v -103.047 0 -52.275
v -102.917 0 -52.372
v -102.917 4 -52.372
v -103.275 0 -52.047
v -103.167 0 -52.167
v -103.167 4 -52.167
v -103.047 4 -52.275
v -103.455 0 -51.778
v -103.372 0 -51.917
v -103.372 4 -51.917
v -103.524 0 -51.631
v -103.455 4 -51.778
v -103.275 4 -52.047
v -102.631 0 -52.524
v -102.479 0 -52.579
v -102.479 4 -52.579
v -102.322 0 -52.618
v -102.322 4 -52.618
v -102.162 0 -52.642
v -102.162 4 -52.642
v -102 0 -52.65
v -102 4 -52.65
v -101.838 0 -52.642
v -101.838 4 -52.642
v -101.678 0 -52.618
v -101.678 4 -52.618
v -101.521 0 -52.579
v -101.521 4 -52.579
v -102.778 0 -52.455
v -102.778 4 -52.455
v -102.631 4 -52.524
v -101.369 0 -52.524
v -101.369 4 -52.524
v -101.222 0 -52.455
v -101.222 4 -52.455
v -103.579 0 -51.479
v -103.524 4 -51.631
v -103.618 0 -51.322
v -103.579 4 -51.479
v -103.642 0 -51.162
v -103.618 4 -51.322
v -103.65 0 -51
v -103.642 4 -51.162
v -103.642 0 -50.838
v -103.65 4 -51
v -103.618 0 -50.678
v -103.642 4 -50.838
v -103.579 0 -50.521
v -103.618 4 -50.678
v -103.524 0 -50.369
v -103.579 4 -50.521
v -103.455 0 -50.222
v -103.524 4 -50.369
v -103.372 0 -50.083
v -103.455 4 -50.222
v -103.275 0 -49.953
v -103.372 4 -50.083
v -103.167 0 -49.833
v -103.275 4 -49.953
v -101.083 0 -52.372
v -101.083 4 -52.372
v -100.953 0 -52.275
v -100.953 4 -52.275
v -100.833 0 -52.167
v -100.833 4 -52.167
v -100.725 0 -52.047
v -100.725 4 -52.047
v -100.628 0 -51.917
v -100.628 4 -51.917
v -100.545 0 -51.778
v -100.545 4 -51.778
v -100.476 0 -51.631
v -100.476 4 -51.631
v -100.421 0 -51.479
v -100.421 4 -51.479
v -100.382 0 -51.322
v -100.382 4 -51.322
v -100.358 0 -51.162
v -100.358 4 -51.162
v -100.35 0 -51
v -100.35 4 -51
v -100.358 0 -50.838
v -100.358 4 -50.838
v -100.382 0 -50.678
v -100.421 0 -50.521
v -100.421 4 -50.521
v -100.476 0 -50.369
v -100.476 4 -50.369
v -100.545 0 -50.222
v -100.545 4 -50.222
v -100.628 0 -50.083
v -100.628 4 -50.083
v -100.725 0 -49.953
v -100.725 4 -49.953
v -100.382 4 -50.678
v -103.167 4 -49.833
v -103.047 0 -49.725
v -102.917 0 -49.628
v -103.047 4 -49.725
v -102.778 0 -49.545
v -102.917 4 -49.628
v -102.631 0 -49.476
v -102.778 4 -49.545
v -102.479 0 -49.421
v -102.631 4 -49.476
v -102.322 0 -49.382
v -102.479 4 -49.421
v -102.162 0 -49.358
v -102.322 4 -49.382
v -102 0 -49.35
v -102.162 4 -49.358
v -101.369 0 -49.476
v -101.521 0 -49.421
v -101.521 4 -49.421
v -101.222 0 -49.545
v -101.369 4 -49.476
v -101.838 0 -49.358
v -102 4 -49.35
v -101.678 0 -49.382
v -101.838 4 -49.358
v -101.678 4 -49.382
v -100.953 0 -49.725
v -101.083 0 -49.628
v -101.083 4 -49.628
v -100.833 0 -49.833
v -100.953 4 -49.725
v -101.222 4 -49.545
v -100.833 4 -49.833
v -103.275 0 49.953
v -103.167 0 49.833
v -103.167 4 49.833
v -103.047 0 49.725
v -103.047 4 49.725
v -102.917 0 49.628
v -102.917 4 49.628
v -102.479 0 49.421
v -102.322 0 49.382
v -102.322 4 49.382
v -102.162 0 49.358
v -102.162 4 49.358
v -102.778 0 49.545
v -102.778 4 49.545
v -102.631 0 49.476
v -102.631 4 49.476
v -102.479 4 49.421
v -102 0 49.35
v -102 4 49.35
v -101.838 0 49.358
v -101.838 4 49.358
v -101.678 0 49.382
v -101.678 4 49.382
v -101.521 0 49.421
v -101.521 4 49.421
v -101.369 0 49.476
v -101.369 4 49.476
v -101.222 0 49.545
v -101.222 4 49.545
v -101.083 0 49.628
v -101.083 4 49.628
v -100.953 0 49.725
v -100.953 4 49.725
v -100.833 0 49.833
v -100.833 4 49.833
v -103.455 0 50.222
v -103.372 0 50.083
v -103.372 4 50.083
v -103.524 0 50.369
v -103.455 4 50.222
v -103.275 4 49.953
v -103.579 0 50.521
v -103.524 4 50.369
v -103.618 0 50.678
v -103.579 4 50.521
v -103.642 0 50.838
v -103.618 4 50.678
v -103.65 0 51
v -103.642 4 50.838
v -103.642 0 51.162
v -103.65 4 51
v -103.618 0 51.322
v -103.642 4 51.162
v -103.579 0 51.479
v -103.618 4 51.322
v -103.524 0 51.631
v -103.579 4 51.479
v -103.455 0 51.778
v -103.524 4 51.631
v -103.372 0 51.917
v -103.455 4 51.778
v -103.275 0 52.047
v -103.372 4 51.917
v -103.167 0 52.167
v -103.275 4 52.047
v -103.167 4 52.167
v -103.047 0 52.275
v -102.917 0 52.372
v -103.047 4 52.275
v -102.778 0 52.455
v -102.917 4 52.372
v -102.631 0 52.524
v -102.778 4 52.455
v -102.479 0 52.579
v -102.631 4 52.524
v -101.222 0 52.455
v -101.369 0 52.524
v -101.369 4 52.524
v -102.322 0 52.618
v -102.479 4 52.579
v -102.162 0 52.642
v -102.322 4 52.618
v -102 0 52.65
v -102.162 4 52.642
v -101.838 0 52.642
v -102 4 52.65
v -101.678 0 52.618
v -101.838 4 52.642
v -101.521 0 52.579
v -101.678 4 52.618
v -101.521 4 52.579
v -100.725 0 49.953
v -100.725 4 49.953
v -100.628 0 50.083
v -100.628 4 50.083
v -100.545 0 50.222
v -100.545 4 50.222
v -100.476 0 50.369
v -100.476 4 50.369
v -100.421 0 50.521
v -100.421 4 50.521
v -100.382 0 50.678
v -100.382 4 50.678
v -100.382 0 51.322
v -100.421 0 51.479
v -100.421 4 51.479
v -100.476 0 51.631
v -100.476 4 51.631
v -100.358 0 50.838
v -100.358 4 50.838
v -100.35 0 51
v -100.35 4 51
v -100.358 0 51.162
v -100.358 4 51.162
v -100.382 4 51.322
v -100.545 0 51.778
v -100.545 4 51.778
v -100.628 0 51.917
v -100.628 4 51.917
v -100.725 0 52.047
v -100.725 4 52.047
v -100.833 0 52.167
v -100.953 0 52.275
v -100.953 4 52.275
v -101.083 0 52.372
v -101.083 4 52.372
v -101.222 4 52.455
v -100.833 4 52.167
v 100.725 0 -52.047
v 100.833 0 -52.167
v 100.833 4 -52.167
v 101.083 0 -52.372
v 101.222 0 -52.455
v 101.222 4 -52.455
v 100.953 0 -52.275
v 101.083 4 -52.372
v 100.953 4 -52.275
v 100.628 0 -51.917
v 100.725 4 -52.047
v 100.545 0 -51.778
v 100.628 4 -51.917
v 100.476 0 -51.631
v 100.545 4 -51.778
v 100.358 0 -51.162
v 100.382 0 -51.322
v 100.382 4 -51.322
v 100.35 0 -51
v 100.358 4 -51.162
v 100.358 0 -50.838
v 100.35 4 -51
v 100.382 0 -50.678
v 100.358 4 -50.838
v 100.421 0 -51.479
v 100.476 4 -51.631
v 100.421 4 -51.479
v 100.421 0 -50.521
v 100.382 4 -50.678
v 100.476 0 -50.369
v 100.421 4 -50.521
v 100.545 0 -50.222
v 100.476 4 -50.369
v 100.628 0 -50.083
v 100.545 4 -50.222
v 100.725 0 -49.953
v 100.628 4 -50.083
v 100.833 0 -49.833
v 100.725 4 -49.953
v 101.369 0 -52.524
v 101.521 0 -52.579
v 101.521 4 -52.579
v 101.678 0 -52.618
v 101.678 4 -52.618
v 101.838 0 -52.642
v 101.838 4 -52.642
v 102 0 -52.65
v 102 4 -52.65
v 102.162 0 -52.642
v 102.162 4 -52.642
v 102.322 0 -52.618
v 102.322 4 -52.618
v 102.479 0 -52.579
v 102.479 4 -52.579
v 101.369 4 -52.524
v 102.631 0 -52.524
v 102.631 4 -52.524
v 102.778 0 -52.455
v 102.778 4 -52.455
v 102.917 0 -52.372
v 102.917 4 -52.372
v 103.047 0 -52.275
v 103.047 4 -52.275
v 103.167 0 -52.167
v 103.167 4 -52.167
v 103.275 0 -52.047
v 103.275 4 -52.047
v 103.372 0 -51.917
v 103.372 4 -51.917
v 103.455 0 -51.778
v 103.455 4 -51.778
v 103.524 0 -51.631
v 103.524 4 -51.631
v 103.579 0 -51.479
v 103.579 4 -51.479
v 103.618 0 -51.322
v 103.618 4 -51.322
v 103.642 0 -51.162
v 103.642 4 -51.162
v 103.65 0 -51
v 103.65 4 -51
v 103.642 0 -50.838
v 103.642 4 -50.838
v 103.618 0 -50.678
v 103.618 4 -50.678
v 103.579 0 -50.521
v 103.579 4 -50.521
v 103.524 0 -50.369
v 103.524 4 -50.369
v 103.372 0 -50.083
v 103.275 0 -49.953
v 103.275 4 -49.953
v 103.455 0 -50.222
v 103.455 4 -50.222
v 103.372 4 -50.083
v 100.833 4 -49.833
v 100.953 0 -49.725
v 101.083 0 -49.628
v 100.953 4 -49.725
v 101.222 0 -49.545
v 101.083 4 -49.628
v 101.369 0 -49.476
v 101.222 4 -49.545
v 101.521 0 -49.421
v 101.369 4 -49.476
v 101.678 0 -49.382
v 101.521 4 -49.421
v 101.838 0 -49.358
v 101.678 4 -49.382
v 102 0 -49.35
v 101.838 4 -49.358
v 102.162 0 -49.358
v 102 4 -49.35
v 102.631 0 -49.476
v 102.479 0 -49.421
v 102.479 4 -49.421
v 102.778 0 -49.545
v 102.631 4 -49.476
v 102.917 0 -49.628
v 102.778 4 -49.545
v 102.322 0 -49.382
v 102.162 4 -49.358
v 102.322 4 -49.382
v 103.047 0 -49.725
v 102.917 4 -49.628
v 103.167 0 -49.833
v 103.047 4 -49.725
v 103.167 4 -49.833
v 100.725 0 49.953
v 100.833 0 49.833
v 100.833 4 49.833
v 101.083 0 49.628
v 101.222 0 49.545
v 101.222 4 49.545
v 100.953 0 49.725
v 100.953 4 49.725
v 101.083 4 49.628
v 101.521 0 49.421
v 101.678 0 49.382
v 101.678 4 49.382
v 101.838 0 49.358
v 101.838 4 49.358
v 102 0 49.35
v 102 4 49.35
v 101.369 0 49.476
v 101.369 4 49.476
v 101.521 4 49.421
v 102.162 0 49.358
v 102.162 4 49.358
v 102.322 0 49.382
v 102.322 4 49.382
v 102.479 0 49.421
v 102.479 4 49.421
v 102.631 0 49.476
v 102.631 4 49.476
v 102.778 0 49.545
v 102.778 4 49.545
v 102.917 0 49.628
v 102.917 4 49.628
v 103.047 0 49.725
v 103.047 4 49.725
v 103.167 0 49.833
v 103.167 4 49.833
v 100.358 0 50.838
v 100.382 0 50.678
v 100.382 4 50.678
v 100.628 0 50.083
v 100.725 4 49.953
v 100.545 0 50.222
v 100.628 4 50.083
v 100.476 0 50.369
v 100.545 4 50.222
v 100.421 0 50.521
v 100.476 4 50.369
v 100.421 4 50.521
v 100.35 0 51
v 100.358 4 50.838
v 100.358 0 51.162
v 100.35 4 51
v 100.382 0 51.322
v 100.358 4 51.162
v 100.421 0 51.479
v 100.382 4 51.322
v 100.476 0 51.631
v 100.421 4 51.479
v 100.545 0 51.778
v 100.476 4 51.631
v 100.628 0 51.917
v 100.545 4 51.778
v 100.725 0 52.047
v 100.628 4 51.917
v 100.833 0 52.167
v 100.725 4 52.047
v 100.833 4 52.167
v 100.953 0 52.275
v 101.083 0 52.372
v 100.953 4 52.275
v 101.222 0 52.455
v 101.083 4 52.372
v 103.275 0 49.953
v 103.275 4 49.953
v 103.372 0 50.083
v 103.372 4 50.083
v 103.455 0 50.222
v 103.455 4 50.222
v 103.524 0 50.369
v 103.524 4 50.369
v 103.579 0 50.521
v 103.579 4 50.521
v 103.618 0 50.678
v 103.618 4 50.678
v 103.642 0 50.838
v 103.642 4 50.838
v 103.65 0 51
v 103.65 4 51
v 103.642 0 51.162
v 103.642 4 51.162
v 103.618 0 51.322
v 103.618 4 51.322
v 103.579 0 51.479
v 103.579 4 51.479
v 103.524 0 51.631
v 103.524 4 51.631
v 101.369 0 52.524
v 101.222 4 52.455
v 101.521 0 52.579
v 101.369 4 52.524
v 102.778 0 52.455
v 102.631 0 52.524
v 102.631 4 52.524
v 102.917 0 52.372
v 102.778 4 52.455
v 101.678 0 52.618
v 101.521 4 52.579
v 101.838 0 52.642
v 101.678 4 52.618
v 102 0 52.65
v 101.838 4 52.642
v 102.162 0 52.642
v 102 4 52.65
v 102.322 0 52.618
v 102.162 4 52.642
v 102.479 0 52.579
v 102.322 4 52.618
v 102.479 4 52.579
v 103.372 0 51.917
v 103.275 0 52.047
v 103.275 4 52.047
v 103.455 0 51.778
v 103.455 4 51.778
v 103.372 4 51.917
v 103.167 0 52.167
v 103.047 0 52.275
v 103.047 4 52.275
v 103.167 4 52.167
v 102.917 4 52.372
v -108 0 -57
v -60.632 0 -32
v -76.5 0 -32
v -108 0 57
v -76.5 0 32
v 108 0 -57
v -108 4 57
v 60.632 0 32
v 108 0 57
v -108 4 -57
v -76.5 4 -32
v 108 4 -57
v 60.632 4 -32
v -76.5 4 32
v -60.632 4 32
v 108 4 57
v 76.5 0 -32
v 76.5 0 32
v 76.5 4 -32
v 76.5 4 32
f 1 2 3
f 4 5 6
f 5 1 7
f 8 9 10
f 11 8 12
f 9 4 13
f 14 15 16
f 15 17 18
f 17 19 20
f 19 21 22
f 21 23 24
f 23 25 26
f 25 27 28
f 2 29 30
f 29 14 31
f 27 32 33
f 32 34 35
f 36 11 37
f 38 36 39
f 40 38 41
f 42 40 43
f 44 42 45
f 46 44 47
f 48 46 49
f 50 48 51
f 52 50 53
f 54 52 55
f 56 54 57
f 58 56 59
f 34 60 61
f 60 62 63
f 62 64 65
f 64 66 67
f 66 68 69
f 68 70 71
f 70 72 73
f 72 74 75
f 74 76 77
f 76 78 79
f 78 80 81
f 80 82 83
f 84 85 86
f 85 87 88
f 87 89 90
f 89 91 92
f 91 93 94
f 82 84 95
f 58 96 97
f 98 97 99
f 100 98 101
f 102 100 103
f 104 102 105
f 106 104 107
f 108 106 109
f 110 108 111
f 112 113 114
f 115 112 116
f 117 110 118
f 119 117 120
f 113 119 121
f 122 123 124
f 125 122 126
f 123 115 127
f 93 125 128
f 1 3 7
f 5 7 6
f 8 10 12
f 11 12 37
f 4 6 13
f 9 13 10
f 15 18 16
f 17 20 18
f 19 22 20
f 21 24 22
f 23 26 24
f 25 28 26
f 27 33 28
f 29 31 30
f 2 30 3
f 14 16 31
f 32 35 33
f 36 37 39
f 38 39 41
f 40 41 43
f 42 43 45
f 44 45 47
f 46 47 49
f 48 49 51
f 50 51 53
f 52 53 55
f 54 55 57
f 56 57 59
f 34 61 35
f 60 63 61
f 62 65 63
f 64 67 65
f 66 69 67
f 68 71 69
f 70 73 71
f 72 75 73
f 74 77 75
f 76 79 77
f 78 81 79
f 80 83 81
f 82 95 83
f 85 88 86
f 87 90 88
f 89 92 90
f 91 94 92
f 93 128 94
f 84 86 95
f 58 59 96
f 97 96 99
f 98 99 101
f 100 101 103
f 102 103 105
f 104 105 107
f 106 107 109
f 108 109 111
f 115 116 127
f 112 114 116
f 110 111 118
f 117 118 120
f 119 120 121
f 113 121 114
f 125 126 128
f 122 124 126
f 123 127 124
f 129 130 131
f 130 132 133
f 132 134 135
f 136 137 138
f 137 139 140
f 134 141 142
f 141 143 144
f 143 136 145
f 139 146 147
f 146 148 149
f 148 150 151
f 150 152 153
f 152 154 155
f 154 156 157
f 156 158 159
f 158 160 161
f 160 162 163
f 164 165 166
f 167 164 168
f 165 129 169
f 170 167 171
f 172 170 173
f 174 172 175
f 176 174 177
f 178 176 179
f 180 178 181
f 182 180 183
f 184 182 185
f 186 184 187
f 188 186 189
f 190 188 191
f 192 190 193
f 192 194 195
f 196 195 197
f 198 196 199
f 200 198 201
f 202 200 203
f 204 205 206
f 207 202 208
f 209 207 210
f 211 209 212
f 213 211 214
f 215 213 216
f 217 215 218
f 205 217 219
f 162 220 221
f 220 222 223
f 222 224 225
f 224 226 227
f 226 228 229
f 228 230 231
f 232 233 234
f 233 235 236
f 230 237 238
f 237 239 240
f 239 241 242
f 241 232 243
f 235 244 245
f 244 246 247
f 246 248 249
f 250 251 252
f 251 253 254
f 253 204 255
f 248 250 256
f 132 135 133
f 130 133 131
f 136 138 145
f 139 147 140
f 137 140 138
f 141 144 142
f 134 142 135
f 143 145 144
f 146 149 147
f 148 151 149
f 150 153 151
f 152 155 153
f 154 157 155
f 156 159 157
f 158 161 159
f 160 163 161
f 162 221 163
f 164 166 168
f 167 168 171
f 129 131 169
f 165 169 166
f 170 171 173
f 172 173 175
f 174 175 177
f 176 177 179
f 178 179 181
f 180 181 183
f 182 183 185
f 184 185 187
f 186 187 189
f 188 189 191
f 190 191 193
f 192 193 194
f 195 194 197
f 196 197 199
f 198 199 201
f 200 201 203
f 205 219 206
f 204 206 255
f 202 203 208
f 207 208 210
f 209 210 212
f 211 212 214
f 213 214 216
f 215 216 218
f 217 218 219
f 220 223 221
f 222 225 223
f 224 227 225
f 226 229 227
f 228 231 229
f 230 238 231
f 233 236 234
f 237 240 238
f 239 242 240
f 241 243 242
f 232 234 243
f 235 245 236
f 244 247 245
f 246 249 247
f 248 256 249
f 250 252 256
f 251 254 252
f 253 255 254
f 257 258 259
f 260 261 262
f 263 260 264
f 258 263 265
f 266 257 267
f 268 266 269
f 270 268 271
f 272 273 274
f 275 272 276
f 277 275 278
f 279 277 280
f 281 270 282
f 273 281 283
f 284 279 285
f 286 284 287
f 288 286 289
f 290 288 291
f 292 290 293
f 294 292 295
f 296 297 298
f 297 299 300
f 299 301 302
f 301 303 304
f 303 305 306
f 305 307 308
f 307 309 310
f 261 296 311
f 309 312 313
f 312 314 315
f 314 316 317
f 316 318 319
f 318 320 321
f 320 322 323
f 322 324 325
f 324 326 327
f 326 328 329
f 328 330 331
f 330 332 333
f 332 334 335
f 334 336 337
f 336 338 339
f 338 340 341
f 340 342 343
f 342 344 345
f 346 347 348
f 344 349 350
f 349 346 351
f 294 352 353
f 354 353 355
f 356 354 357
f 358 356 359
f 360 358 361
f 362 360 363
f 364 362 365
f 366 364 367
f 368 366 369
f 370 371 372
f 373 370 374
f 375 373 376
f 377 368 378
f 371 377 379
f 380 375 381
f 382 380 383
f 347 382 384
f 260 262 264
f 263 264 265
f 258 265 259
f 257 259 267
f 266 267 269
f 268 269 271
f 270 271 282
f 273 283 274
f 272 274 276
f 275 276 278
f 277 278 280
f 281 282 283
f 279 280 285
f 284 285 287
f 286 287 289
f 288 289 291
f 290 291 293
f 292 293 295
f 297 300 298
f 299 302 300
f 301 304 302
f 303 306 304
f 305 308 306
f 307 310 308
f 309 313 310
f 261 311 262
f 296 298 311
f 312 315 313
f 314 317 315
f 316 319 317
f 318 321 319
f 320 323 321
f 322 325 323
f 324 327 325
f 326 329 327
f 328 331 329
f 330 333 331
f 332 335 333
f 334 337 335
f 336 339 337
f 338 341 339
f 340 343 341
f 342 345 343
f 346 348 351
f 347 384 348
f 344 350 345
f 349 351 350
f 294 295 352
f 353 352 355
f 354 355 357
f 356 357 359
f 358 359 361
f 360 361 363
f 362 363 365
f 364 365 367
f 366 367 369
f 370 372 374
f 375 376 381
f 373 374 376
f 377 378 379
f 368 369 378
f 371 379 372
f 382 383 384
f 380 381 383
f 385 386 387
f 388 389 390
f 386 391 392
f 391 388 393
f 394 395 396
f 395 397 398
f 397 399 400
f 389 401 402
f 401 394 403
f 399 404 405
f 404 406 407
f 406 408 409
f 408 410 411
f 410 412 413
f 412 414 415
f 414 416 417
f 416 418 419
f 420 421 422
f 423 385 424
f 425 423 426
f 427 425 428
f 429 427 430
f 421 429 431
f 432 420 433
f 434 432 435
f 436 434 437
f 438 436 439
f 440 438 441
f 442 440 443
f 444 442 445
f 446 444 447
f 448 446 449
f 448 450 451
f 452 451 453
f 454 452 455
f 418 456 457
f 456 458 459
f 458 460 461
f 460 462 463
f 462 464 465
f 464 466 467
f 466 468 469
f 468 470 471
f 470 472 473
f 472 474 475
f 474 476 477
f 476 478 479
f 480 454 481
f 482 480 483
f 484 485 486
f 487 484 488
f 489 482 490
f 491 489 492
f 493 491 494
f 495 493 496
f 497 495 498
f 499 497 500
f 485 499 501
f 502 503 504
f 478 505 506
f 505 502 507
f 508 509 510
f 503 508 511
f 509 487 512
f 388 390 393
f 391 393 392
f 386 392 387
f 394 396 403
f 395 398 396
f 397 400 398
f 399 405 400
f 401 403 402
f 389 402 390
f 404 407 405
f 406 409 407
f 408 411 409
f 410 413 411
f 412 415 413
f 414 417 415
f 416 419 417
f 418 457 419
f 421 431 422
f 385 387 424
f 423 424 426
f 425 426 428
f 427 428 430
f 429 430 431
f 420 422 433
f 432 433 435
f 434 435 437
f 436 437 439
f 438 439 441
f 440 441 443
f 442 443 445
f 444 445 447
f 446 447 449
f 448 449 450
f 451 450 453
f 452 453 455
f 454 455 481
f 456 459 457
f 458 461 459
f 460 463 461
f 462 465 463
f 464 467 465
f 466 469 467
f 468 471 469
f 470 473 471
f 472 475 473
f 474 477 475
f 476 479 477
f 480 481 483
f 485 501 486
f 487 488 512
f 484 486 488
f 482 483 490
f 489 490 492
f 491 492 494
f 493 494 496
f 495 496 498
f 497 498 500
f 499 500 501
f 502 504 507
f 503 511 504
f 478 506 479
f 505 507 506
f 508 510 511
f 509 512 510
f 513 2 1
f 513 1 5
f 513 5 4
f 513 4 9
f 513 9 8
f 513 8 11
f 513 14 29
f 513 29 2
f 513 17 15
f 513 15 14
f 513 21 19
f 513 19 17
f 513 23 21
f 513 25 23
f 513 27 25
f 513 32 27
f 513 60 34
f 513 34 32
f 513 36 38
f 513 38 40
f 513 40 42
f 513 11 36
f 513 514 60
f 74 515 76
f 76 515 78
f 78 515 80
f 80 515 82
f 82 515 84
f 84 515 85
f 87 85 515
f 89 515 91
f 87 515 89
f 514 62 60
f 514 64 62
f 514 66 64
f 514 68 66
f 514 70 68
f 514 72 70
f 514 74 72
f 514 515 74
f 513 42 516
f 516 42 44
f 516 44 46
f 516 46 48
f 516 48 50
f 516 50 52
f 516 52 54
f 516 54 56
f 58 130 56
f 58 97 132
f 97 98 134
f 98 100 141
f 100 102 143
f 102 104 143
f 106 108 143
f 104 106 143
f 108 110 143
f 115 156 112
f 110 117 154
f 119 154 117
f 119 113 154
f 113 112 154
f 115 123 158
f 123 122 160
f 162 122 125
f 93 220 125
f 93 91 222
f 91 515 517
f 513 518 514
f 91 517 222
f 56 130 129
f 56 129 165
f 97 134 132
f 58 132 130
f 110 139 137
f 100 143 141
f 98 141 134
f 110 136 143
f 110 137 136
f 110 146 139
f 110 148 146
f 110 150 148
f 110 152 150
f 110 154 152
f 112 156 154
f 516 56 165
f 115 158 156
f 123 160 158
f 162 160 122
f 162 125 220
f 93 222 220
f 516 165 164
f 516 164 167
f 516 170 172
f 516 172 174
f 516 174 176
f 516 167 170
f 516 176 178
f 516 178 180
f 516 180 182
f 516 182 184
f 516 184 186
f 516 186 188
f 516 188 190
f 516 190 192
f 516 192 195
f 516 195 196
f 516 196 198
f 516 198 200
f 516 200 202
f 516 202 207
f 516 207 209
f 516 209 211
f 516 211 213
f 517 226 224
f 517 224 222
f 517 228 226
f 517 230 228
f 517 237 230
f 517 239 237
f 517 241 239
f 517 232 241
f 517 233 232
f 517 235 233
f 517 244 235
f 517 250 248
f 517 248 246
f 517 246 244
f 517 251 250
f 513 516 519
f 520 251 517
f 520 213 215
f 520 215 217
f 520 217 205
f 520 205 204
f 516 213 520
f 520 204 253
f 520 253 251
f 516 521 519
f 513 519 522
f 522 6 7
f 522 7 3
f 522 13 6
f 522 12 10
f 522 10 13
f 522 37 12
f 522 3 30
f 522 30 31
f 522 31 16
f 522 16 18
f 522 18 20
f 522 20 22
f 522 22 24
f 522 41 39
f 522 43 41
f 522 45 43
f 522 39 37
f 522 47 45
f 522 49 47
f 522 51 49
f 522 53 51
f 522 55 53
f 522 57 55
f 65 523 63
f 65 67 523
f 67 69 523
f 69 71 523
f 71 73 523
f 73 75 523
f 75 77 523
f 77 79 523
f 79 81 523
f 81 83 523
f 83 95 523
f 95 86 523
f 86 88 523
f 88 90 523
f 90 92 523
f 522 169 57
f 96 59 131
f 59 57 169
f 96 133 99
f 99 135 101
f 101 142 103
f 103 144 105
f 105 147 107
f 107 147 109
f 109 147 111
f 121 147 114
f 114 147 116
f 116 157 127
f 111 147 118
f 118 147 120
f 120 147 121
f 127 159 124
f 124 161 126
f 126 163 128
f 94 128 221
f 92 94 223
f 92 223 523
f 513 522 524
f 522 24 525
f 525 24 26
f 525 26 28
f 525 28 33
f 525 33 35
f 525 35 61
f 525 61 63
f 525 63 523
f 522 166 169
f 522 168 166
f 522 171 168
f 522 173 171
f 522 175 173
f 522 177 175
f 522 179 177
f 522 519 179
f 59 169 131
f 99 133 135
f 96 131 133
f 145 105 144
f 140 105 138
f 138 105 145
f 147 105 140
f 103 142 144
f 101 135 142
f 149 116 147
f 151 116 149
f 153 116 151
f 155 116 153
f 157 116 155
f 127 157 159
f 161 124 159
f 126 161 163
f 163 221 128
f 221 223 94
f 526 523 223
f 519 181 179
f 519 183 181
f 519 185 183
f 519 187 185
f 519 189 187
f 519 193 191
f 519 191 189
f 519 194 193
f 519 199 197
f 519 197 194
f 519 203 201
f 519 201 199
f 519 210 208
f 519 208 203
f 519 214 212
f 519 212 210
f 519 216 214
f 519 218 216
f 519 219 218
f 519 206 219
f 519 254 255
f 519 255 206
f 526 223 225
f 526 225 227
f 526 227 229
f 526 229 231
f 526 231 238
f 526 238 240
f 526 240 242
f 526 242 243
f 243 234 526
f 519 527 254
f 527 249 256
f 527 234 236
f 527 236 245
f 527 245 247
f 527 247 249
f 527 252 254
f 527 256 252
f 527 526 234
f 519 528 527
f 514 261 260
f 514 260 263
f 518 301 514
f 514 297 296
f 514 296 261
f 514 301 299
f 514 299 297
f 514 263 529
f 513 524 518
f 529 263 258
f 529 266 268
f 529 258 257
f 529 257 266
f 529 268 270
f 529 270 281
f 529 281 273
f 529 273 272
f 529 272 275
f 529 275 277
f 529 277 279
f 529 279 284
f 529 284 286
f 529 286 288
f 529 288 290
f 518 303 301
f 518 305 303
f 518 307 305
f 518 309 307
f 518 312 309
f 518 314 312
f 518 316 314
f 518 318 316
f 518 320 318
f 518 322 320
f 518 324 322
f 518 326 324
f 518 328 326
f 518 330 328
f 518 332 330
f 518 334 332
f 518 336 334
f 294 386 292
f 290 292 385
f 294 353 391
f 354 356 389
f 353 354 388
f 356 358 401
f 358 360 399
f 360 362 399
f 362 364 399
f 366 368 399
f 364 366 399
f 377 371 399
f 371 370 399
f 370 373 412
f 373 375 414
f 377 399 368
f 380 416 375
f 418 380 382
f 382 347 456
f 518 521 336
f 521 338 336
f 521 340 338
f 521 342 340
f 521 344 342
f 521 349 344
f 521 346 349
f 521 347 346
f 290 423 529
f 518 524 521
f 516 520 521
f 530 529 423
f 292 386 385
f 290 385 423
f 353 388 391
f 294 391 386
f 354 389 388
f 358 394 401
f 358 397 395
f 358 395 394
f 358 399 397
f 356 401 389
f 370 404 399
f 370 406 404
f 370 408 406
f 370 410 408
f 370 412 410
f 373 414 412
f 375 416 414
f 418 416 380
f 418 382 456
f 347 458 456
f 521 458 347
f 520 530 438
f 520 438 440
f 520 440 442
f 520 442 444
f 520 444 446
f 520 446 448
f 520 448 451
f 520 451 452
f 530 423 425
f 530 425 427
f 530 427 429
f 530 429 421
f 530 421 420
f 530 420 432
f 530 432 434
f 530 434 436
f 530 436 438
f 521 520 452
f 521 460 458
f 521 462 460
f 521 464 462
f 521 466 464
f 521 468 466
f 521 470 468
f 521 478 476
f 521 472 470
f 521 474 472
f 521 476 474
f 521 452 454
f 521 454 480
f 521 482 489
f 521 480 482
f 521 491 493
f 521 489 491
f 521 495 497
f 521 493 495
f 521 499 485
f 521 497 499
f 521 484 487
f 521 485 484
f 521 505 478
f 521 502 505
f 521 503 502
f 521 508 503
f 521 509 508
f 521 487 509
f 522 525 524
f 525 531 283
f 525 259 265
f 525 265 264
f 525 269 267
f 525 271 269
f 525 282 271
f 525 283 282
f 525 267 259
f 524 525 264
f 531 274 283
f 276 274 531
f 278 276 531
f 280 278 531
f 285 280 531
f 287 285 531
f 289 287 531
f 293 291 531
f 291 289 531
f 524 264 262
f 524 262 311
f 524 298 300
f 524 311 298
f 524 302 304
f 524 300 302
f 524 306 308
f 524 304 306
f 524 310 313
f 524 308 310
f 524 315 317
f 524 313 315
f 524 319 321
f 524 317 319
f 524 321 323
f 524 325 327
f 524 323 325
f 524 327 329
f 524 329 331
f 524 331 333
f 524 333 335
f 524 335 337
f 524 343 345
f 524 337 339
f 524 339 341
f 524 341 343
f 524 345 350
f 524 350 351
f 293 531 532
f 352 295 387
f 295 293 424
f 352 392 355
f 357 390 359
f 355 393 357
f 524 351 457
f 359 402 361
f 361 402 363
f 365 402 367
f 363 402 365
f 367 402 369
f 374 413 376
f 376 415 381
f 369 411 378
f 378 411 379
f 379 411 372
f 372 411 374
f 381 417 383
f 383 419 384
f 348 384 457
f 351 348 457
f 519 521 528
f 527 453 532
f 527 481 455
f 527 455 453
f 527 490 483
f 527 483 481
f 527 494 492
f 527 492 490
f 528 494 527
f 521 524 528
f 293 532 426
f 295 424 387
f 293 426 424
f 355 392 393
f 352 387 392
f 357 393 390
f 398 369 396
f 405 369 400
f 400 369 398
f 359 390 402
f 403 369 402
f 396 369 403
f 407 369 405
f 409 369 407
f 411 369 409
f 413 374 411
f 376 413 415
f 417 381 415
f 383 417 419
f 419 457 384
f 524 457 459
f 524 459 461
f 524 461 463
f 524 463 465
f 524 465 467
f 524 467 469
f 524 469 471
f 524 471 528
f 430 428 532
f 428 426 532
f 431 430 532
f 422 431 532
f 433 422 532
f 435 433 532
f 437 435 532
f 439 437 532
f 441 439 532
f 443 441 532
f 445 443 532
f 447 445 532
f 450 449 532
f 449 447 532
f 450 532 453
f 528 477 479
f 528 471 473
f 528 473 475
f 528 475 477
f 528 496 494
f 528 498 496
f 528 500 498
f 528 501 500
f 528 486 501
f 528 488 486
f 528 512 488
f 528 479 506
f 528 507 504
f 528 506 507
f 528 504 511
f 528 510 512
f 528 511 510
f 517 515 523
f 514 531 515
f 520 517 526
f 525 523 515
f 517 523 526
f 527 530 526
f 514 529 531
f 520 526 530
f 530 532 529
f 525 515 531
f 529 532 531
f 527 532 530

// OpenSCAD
// file: util.scad
// Shared helper modules for node-dock parts.
include <params.scad>

// Boss for a heat-set insert. h = total boss height, with insert pocket
// drilled from the top.
module insert_boss(h = 8) {
    difference() {
        cylinder(h = h, d = M3_INSERT_D + 2 * WALL);
        translate([0, 0, h - M3_INSERT_H])
            cylinder(h = M3_INSERT_H + 0.1, d = M3_INSERT_D);
    }
}

// Through-hole for M3 clearance.
module m3_through(h) {
    cylinder(h = h + 0.2, d = M3_CLEAR, center = false);
}

// Alignment peg (printed solid).
module peg(h = 8) {
    cylinder(h = h, d = PEG_D);
}

// Alignment-peg socket.
module peg_hole(h = 8) {
    cylinder(h = h + 0.1, d = PEG_D + 0.2);
}

// Rounded rectangle (2D) for shells.
module rrect(x, y, r = 3) {
    hull() for (sx = [-1, 1], sy = [-1, 1])
        translate([sx * (x/2 - r), sy * (y/2 - r), 0]) circle(r = r);
}

// Servo cavity (rectangular box, centered XY, base at z=0).
module servo_cavity(x, y, z) {
    translate([-x/2, -y/2, 0]) cube([x, y, z + 0.1]);
}
// file: params.scad
// Shared parameters for node-dock shell.
// All dimensions in millimeters. Sourced from
//   ../../bodylink/sim/bodies/dock_humanoid.xml
// where they are in meters.

// ── Global tolerances ────────────────────────────────────────────────
WALL        = 2.4;   // 3 perimeters at 0.4 mm nozzle / 0.2 mm layer
FIT         = 0.3;   // press-fit clearance on servo cavities
PHONE_FIT   = 0.5;   // clearance around phone outline
M3_CLEAR    = 3.3;   // M3 clearance hole
M3_INSERT_D = 5.0;   // heat-set insert outer Ø
M3_INSERT_H = 5.0;   // heat-set insert depth
PEG_D       = 4.0;   // alignment peg Ø (peg) / hole Ø is PEG_D + 0.2

$fn = 64;            // smooth curves by default

// ── Base ─────────────────────────────────────────────────────────────
BASE_D      = 240;
BASE_H      = 50;
BASE_SPLIT  = 25;    // halve the disc horizontally
BASE_FLANGE_D = 90;
BASE_FLANGE_H = 10;

// ── Leg shaft ────────────────────────────────────────────────────────
LEG_D       = 60;
LEG_H       = 70;
LEG_BORE    = 16;    // cable channel Ø

// ── Trunk ────────────────────────────────────────────────────────────
TRUNK_X     = 100;
TRUNK_Y     = 80;
TRUNK_Z     = 140;

// ── Neck stub (enlarged from XML 30³ to fit MG996R + MG90S stacked) ──
NECK_X      = 30;
NECK_Y      = 40;
NECK_Z      = 40;

// ── Head / phone cradle ──────────────────────────────────────────────
// XML head_plate visible face: 200 × 100 mm (landscape), 20 mm thick
// XML head_frame_back: 216 × 26 × 114 mm
HEAD_X      = 216;
HEAD_Y      = 26;
HEAD_Z      = 114;
PHONE_X     = 165;   // typical 6.1" phone outline; iPhone 15-class
PHONE_Y     = 9;     // phone thickness
PHONE_Z     = 76;
BEZEL_LIP   = 6;     // visible-face overlap on the front bezel

// ── Shoulder bracket ─────────────────────────────────────────────────
SHB_X       = 36;
SHB_Y       = 28;
SHB_Z       = 28;

// ── Arm ──────────────────────────────────────────────────────────────
ARM_D       = 26;
ARM_L       = 60;

// ── Servo cavities (datasheet + FIT clearance) ───────────────────────
// DS3218 standard servo body: 40 × 20 × 38.5 + cable boss
DS3218_X = 40.0 + FIT;
DS3218_Y = 20.0 + FIT;
DS3218_Z = 38.5 + FIT;
DS3218_EAR_W = 54.5;   // mounting-ear span
DS3218_EAR_T = 2.5;

// MG996R: 40.7 × 19.7 × 42.9
MG996R_X = 40.7 + FIT;
MG996R_Y = 19.7 + FIT;
MG996R_Z = 42.9 + FIT;

// MG90S / SG90: 22.8 × 12.2 × 28.5 (MG90S body height includes flange)
MG90S_X = 22.8 + FIT;
MG90S_Y = 12.2 + FIT;
MG90S_Z = 28.5 + FIT;
// main file
// Head — front bezel. Thin plate with a window over the phone screen
// and a retaining lip around the phone outline.
include <params.scad>
use <util.scad>

BEZEL_T = 4;     // total bezel thickness
WIN_X   = PHONE_X - 2 * BEZEL_LIP;
WIN_Z   = PHONE_Z - 2 * BEZEL_LIP;

module head_front() {
    difference() {
        translate([-HEAD_X/2, 0, -HEAD_Z/2])
            cube([HEAD_X, BEZEL_T, HEAD_Z]);

        // Screen window.
        translate([-WIN_X/2, -0.1, -WIN_Z/2])
            cube([WIN_X, BEZEL_T + 0.2, WIN_Z]);

        // 4 corner M3 clearance.
        for (sx = [-1, 1], sz = [-1, 1])
            translate([sx * (HEAD_X/2 - 6), 0, sz * (HEAD_Z/2 - 6)])
                rotate([-90, 0, 0])
                    cylinder(h = BEZEL_T + 1, d = M3_CLEAR);
    }
}

head_front();
